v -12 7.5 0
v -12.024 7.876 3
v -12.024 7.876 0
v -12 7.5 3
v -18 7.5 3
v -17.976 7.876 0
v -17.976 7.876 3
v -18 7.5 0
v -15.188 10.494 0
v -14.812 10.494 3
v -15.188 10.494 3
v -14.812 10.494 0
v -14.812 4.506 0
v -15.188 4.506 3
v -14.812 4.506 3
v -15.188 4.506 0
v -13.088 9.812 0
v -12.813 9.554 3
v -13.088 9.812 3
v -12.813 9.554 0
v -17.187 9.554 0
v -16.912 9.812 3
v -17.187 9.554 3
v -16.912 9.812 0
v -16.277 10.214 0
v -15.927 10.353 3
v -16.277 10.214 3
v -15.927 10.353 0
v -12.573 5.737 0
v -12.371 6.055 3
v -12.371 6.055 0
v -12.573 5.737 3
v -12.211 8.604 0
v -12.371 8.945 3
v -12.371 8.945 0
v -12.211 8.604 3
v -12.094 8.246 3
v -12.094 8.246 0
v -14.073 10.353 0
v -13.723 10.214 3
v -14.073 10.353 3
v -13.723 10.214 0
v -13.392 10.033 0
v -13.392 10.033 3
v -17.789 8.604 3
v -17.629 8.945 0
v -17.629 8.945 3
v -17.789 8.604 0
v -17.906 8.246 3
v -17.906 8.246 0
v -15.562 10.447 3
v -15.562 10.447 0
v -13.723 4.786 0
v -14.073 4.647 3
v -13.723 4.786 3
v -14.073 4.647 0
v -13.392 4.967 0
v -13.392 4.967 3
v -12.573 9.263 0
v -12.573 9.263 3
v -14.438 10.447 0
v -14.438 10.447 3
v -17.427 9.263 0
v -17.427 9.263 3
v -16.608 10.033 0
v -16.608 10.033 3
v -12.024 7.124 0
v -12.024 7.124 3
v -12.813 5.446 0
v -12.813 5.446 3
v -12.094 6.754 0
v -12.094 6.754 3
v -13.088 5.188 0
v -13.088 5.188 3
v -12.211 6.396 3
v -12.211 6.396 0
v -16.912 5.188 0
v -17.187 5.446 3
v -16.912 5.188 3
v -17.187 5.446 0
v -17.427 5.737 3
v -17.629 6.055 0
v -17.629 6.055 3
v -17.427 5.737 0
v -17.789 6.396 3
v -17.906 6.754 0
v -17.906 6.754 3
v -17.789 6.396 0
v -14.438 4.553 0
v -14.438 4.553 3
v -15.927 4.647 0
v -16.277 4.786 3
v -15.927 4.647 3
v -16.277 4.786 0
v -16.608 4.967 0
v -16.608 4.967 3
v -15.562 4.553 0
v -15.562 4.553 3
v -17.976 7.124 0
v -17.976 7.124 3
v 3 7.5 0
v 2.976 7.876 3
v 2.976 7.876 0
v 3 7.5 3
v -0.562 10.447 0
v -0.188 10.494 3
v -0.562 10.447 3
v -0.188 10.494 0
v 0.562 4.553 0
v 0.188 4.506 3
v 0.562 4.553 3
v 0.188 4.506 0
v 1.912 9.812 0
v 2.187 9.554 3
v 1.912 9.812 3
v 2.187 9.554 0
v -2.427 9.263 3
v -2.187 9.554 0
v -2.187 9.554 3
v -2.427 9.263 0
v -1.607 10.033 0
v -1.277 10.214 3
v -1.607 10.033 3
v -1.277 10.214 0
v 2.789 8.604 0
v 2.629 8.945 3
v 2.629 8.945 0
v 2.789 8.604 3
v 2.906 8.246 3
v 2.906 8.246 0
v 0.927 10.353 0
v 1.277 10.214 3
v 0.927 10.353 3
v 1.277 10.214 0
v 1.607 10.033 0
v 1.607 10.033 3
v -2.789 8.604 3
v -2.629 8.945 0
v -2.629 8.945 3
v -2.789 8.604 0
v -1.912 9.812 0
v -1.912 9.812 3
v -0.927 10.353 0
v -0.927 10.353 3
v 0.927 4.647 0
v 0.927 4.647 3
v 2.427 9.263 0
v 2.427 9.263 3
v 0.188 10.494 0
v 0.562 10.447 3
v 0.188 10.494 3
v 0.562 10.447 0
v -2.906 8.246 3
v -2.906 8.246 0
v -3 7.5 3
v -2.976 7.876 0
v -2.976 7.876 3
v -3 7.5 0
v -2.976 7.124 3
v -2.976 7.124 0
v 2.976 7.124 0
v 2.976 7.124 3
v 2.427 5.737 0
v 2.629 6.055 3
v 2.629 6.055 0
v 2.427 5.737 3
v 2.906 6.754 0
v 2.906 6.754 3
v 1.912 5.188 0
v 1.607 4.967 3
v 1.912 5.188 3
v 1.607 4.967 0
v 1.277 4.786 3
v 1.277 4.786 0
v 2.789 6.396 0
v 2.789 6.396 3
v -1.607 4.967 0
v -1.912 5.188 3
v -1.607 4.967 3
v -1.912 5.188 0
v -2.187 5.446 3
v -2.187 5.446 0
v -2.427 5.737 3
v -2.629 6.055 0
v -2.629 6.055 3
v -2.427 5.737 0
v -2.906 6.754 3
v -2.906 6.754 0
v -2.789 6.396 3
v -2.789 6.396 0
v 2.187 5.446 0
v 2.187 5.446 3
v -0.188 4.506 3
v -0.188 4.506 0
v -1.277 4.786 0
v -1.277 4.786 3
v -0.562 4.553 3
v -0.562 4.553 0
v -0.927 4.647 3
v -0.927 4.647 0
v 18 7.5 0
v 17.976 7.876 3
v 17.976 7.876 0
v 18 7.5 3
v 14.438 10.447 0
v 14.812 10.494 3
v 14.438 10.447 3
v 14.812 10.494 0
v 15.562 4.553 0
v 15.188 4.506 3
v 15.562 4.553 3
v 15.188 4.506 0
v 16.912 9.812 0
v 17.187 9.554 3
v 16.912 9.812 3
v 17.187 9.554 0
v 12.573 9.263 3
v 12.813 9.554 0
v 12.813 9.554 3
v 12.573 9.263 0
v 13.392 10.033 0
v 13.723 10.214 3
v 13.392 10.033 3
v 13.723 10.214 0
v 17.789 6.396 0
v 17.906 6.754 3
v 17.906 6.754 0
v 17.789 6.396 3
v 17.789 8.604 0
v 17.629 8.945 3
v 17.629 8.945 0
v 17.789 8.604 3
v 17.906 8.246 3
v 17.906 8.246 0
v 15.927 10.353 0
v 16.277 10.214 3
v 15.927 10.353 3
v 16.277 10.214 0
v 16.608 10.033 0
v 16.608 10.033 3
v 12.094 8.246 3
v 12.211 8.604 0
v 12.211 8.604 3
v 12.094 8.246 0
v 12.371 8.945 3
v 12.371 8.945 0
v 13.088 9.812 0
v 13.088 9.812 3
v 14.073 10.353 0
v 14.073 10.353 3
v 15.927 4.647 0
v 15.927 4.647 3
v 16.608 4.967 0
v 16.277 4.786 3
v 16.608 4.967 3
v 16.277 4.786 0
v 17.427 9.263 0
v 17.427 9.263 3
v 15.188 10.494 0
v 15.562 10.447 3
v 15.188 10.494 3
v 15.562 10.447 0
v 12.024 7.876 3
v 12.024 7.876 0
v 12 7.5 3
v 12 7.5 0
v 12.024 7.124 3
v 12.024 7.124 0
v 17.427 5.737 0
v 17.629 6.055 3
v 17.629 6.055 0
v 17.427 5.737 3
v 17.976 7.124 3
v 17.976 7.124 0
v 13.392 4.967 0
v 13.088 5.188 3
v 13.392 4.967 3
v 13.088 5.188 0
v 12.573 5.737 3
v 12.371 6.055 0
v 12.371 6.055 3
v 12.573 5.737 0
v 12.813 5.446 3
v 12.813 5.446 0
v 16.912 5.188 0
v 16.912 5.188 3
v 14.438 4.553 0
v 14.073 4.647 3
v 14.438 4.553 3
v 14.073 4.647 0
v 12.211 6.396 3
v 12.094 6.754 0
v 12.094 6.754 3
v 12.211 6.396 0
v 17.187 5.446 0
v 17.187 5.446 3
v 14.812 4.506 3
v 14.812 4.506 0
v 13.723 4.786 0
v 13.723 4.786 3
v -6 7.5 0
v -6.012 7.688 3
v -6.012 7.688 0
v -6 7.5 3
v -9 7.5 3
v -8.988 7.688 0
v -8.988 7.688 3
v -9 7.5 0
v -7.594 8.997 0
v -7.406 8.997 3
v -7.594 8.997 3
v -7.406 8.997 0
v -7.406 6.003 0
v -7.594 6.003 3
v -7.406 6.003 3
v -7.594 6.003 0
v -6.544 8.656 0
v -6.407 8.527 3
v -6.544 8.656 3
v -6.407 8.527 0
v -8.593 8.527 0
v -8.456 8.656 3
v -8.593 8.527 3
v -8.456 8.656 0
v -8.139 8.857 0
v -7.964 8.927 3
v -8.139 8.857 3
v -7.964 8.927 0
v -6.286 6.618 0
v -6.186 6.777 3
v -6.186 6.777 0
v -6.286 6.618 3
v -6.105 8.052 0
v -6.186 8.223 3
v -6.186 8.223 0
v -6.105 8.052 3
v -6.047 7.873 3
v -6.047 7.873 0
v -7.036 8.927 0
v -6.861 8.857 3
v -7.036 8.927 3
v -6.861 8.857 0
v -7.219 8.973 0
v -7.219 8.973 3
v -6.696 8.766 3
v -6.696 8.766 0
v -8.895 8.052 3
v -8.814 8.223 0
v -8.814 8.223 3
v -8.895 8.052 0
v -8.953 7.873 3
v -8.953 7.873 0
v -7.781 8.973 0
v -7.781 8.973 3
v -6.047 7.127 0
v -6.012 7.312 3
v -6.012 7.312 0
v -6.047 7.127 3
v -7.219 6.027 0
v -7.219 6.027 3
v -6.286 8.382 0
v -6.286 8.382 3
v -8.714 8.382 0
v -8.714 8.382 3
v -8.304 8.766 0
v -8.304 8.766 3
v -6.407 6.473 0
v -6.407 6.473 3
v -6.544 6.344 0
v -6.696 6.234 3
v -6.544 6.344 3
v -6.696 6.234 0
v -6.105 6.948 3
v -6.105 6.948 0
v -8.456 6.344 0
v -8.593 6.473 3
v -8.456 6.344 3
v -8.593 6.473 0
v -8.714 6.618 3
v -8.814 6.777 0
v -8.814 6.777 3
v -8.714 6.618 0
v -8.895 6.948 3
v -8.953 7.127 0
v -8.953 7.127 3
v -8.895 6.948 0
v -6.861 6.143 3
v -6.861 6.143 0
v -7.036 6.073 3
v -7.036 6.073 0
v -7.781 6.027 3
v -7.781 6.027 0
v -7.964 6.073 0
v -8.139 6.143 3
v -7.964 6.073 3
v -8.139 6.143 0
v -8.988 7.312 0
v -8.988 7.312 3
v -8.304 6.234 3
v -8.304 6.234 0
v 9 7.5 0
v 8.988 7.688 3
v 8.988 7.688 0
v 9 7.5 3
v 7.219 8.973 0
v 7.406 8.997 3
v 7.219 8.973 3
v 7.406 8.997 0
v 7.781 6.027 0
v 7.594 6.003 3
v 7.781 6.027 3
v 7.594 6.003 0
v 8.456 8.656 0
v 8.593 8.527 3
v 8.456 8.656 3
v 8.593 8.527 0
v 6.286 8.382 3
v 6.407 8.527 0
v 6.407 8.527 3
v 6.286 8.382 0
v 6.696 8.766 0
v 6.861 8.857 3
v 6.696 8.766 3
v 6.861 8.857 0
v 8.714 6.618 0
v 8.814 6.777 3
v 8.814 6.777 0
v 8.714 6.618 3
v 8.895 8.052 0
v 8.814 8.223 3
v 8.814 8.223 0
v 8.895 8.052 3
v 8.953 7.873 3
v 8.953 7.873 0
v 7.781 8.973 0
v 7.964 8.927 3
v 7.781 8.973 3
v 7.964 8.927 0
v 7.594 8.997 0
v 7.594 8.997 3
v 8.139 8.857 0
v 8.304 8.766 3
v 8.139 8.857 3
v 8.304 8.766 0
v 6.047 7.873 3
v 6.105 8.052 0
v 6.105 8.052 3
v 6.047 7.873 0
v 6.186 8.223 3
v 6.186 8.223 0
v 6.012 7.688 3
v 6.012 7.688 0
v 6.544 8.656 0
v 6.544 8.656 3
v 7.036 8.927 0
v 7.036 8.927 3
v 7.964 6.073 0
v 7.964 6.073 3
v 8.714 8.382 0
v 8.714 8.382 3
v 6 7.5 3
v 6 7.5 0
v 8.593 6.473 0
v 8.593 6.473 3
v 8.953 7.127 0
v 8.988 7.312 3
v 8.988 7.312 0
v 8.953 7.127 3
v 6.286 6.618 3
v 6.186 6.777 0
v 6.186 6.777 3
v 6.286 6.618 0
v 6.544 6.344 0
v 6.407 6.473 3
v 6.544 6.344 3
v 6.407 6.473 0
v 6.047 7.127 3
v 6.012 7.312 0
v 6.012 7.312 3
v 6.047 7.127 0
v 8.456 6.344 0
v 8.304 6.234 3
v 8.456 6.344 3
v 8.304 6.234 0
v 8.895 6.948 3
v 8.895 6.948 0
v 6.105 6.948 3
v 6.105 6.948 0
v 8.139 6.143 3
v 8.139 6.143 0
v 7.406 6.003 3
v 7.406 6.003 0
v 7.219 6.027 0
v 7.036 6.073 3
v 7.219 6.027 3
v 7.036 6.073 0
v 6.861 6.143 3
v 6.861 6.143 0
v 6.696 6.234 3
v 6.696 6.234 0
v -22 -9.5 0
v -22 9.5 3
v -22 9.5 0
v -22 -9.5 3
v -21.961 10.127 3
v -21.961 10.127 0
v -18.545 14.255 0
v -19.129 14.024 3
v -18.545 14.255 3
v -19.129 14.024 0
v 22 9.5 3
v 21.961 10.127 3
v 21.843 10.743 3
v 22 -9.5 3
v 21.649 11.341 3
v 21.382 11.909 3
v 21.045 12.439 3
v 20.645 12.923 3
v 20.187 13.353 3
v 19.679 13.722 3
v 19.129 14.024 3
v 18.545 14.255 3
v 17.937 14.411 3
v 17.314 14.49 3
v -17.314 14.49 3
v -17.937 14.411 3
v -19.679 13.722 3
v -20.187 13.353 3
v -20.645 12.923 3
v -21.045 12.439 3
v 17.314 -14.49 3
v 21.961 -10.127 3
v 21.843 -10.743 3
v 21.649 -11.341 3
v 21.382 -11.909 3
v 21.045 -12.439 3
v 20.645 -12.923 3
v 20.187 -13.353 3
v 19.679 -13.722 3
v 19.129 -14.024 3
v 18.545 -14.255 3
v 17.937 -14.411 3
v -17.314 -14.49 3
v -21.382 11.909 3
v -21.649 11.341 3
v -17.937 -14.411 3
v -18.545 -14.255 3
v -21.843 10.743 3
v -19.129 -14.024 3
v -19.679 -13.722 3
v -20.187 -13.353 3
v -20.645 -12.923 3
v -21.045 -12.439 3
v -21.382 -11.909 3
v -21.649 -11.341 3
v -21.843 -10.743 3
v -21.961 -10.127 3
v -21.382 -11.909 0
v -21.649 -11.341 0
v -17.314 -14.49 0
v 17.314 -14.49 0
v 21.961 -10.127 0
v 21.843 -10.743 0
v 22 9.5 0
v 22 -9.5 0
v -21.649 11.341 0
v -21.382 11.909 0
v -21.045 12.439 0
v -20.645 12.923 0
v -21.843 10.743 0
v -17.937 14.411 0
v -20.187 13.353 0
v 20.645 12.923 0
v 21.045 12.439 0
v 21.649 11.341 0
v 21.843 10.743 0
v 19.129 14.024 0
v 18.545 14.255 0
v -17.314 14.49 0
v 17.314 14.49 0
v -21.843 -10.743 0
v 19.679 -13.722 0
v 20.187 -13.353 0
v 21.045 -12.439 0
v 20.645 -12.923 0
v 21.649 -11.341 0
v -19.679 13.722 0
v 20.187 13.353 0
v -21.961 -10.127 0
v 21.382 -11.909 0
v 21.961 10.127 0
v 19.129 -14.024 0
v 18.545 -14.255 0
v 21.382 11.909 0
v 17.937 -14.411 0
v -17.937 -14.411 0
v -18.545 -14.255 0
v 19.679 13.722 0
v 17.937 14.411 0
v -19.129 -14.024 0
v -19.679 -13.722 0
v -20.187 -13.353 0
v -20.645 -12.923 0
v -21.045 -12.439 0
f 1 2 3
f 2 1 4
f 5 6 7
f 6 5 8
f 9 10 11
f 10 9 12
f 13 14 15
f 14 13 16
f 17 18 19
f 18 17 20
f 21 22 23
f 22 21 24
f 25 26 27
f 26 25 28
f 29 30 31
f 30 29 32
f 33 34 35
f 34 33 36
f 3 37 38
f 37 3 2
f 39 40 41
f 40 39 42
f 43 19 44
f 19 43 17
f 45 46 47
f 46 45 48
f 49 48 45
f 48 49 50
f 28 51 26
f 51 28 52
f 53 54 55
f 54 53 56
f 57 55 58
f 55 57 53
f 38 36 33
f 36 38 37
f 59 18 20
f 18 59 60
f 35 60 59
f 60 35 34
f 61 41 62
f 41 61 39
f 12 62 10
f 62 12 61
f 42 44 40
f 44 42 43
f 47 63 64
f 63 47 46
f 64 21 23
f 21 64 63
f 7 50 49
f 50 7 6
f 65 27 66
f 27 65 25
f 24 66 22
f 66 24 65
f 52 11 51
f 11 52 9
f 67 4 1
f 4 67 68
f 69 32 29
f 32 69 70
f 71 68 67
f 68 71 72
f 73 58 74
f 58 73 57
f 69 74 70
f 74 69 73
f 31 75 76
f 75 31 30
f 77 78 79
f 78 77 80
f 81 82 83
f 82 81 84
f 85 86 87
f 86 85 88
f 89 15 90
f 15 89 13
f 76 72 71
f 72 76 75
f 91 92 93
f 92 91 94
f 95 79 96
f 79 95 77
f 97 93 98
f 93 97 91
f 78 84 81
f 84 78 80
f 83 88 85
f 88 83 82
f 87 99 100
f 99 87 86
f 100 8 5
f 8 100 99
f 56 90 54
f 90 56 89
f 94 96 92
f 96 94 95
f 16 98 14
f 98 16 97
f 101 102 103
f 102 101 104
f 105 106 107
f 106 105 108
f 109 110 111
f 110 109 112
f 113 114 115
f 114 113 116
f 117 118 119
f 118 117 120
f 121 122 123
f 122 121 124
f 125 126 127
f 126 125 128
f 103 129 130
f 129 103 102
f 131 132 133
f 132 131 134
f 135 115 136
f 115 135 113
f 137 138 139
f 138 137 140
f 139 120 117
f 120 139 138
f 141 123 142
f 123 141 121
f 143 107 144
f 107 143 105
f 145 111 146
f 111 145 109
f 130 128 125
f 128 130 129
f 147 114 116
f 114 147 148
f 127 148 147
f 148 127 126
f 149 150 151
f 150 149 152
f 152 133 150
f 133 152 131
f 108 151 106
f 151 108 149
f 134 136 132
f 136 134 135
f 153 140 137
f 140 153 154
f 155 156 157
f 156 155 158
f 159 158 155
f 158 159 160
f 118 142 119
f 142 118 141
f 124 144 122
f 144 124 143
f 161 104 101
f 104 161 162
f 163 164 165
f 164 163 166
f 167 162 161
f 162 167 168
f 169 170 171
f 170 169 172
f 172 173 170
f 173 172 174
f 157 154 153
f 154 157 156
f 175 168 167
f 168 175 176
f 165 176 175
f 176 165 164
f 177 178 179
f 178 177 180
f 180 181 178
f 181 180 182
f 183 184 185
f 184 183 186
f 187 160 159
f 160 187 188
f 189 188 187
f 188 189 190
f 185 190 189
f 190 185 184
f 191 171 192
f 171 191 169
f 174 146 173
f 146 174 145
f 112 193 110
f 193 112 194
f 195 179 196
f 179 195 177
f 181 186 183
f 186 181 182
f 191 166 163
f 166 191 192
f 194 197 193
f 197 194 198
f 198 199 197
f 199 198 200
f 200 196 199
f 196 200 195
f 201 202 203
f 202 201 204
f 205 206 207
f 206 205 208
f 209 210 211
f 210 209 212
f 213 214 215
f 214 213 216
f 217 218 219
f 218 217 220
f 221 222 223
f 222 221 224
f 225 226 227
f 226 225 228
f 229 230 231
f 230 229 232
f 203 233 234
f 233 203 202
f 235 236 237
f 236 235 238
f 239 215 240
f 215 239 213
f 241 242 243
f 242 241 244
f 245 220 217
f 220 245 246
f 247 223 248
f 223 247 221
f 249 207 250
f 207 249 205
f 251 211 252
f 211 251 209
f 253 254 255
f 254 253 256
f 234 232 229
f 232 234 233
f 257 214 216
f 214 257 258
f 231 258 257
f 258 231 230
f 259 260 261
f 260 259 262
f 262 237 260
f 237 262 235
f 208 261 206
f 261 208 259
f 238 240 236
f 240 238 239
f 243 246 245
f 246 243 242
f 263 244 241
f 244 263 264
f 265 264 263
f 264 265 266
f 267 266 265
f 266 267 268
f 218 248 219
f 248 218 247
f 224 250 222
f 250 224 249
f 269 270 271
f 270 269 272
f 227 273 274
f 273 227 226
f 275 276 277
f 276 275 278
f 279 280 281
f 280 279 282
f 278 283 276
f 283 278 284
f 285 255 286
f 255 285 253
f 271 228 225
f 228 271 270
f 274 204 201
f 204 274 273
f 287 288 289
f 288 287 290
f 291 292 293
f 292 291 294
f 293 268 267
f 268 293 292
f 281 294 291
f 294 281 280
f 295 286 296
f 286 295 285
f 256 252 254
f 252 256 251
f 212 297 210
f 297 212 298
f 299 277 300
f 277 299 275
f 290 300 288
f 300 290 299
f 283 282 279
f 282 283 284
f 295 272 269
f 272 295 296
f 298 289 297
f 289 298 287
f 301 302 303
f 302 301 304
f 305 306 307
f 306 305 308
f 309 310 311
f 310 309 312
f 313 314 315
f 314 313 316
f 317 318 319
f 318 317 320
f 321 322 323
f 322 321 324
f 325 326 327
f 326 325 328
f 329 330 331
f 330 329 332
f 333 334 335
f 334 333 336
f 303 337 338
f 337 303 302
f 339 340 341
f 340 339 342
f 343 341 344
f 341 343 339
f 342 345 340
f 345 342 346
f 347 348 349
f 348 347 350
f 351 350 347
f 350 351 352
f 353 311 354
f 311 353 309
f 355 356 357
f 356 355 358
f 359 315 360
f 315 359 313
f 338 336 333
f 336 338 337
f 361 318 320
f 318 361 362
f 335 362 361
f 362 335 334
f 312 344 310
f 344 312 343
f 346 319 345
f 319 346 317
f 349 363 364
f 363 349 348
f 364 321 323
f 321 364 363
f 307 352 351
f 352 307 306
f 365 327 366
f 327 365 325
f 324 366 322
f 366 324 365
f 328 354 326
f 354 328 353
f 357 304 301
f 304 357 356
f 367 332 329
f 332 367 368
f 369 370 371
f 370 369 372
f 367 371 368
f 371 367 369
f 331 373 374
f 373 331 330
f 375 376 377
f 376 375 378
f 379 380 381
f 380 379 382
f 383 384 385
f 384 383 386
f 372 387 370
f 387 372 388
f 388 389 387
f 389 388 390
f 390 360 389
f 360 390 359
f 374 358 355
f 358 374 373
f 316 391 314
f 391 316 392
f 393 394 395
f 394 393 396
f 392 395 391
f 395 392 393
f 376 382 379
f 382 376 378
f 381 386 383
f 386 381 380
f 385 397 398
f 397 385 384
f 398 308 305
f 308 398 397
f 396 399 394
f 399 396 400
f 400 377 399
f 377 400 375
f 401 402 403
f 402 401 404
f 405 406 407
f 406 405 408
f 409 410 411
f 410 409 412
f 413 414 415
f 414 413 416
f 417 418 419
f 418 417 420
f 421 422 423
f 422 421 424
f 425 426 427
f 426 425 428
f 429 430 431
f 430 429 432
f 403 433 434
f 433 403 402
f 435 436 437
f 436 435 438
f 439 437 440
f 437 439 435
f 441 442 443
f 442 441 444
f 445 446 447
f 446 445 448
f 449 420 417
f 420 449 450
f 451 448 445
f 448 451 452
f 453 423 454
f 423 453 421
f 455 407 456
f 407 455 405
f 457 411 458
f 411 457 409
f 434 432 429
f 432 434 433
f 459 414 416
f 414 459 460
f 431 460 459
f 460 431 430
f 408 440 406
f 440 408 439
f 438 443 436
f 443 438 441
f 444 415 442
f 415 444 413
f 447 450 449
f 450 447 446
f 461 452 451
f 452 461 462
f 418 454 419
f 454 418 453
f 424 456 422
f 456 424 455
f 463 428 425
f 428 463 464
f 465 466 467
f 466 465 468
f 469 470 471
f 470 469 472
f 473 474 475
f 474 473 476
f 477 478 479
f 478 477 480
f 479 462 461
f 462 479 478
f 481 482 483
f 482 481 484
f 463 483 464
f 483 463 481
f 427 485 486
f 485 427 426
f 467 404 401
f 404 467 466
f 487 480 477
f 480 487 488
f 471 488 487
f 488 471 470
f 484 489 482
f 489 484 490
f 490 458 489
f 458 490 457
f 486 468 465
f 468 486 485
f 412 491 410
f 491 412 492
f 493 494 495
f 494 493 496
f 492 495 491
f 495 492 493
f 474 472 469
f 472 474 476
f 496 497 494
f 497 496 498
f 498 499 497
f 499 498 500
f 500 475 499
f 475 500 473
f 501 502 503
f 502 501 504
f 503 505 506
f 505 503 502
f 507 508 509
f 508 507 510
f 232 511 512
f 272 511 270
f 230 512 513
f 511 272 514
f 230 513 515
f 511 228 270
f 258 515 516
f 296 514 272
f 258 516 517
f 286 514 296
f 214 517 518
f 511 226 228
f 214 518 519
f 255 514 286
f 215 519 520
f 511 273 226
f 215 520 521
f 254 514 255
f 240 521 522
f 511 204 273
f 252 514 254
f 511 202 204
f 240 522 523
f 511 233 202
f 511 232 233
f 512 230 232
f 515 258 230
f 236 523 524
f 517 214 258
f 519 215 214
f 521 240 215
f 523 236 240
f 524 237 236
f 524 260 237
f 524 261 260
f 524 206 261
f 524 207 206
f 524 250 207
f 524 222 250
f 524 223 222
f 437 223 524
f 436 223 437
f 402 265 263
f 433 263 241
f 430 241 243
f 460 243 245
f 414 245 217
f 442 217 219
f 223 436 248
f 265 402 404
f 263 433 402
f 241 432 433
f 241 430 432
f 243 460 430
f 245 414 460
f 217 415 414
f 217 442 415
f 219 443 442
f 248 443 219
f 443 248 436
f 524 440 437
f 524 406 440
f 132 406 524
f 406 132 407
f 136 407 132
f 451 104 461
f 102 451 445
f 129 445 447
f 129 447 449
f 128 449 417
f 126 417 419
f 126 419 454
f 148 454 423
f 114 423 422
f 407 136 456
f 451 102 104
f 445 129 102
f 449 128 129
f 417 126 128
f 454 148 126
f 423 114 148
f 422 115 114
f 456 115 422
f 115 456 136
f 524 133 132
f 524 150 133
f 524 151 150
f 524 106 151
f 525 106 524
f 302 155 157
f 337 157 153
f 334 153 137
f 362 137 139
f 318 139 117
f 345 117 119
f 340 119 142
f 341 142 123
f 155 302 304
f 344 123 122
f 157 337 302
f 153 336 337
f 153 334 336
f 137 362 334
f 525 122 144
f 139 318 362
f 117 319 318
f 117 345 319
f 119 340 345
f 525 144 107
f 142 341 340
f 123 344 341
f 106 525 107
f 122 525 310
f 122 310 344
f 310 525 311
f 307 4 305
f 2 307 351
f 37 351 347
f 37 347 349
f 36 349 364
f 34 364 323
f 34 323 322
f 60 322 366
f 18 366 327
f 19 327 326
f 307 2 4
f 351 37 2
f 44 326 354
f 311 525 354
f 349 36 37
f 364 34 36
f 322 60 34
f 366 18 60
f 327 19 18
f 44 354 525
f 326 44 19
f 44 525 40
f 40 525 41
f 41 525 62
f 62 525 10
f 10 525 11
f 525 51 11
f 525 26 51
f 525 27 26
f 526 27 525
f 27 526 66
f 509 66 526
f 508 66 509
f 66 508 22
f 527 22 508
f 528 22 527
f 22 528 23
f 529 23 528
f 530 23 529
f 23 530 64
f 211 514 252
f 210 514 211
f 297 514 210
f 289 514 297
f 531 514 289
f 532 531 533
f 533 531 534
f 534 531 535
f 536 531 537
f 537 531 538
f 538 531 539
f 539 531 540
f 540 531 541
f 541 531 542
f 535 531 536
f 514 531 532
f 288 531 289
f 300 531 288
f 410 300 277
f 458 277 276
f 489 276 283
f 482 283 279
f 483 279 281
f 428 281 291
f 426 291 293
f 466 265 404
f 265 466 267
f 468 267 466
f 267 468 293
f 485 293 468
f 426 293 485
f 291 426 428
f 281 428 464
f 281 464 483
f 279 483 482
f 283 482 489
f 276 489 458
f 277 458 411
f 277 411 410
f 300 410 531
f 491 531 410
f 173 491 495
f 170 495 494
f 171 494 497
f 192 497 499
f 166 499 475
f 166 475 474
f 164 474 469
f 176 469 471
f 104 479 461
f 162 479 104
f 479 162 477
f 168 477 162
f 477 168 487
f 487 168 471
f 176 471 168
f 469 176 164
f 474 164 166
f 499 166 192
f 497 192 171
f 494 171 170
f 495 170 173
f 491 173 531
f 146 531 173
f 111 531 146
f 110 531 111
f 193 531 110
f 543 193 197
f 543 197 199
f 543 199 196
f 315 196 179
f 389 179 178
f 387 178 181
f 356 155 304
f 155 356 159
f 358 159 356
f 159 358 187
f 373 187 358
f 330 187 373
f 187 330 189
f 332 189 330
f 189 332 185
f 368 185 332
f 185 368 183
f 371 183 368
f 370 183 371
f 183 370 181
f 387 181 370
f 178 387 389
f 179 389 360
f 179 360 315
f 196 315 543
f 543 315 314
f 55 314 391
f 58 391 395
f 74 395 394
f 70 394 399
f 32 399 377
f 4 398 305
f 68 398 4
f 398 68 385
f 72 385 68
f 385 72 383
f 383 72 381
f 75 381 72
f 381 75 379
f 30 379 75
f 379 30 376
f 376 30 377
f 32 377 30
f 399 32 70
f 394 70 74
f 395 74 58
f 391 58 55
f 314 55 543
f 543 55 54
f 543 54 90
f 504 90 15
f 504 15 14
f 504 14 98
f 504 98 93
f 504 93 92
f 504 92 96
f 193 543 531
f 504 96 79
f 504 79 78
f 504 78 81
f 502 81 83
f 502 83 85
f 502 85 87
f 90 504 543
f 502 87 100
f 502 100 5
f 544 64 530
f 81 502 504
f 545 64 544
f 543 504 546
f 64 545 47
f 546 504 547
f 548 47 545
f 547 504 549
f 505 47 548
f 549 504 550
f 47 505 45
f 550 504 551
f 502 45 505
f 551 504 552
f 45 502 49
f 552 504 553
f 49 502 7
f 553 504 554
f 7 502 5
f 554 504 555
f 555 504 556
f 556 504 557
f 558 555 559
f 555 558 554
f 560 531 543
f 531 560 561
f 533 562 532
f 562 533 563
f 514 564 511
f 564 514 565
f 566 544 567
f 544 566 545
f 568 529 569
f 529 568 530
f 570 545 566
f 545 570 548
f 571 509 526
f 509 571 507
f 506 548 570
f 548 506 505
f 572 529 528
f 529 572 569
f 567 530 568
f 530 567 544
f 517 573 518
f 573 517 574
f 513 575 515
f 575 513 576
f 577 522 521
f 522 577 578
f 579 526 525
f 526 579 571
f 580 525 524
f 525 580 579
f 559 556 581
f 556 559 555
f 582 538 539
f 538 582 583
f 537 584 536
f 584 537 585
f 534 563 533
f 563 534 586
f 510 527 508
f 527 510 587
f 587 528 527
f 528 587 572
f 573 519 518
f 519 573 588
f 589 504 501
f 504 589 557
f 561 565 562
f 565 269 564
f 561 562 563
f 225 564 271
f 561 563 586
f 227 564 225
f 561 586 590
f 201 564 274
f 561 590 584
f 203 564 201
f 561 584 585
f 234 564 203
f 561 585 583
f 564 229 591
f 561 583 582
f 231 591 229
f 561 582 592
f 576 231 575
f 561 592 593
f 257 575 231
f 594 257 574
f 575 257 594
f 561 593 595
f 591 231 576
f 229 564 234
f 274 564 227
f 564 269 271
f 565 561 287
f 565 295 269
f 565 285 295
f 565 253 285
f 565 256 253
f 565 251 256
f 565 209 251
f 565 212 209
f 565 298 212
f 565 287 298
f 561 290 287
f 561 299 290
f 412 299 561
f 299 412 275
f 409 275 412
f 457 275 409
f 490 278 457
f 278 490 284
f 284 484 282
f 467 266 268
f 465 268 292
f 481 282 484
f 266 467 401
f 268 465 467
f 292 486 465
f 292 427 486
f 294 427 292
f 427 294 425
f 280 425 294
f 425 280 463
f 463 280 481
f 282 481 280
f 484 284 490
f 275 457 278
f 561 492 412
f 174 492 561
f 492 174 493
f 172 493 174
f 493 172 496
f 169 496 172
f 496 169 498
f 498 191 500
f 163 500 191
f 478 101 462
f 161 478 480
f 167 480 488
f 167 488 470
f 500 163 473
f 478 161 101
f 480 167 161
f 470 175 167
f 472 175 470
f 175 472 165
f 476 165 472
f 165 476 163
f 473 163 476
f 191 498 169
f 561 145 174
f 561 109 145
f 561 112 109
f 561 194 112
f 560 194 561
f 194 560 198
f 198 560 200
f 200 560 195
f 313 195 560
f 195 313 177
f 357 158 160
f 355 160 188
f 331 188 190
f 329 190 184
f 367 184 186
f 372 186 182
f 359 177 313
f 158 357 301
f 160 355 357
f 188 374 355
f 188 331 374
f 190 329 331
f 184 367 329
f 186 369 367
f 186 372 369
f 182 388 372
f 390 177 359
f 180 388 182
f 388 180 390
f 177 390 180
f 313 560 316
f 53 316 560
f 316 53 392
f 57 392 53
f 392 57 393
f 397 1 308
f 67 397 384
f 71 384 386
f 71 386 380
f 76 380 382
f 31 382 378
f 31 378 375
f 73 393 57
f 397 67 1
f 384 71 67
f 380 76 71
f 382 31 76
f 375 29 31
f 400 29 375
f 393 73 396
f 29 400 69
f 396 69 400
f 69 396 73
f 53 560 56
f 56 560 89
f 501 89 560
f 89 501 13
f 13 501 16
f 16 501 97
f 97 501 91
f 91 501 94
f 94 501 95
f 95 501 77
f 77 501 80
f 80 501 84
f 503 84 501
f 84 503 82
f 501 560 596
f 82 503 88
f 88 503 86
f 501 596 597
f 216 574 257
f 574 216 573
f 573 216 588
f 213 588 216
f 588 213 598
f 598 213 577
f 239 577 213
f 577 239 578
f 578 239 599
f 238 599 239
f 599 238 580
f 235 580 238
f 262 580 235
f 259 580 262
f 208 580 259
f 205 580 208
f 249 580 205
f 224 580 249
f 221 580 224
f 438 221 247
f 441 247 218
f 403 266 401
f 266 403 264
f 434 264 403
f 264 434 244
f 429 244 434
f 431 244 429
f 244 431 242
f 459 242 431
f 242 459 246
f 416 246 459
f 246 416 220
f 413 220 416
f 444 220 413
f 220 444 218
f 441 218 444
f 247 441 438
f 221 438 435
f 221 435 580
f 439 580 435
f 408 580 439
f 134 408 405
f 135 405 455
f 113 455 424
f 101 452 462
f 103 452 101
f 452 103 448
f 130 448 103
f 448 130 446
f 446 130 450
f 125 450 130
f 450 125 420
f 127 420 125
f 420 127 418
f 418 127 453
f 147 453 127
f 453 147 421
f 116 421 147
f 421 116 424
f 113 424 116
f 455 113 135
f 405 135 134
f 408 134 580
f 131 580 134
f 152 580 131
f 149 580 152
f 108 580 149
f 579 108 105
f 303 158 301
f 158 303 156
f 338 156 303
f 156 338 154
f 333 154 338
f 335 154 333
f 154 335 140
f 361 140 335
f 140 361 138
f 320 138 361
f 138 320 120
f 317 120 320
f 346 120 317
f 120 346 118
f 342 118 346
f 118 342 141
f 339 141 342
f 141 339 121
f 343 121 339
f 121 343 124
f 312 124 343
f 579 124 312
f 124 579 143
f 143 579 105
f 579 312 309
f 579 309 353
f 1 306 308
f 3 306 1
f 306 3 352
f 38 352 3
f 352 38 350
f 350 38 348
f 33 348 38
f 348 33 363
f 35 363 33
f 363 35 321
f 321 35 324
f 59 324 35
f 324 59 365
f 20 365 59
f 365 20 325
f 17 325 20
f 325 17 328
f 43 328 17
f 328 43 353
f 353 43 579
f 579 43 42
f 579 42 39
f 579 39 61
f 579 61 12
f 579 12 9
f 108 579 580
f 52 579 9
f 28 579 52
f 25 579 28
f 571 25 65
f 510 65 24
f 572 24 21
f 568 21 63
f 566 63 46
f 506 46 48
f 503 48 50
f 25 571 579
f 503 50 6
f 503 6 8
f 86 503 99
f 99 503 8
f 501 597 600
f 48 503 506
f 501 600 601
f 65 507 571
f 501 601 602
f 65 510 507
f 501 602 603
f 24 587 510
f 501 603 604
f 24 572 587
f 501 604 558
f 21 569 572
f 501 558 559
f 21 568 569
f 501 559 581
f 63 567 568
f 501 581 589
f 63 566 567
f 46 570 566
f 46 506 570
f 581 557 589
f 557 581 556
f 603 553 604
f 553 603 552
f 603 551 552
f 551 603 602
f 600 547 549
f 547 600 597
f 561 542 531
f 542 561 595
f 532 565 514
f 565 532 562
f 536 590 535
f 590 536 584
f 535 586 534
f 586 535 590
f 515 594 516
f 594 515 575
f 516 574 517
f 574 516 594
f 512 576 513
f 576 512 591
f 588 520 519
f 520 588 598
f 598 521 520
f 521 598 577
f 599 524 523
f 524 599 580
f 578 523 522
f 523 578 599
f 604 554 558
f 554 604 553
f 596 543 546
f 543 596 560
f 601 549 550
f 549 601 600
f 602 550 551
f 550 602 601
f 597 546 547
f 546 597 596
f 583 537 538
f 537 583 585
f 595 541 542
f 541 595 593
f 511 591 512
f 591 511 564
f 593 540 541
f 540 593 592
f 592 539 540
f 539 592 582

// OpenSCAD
$fn = 50;


difference() {
	union() {
		*color(alpha = 1.0000000000, c = "gray") {
			translate(v = [0, 7, 0]) {
				linear_extrude(height = 1) {
					text(font = "Arial:style=Bold", halign = "center", size = 4.5000000000, text = "COMMENT plate main", valign = "center");
				}
			}
		}
		hull() {
			translate(v = [-17.0000000000, 9.5000000000, 0]) {
				cylinder(h = 3, r = 5);
			}
			translate(v = [17.0000000000, 9.5000000000, 0]) {
				cylinder(h = 3, r = 5);
			}
			translate(v = [-17.0000000000, -9.5000000000, 0]) {
				cylinder(h = 3, r = 5);
			}
			translate(v = [17.0000000000, -9.5000000000, 0]) {
				cylinder(h = 3, r = 5);
			}
		}
	}
	union() {
		*color(alpha = 1.0000000000, c = "gray") {
			translate(v = [0, 7, 0]) {
				linear_extrude(height = 1) {
					text(font = "Arial:style=Bold", halign = "center", size = 4.5000000000, text = "COMMENT holes main", valign = "center");
				}
			}
		}
		translate(v = [-15.0000000000, 7.5000000000, -100.0000000000]) {
			cylinder(h = 200, r = 3.0000000000);
		}
		translate(v = [0.0000000000, 7.5000000000, -100.0000000000]) {
			cylinder(h = 200, r = 3.0000000000);
		}
		translate(v = [15.0000000000, 7.5000000000, -100.0000000000]) {
			cylinder(h = 200, r = 3.0000000000);
		}
		translate(v = [-15.0000000000, 7.5000000000, -100.0000000000]) {
			cylinder(h = 200, r = 1.5000000000);
		}
		translate(v = [-7.5000000000, 7.5000000000, -100.0000000000]) {
			cylinder(h = 200, r = 1.5000000000);
		}
		translate(v = [0.0000000000, 7.5000000000, -100.0000000000]) {
			cylinder(h = 200, r = 1.5000000000);
		}
		translate(v = [7.5000000000, 7.5000000000, -100.0000000000]) {
			cylinder(h = 200, r = 1.5000000000);
		}
		translate(v = [15.0000000000, 7.5000000000, -100.0000000000]) {
			cylinder(h = 200, r = 1.5000000000);
		}
		translate(v = [-15.0000000000, 7.5000000000, -100.0000000000]) {
			cylinder(h = 200, r = 1.5000000000);
		}
		translate(v = [-7.5000000000, 7.5000000000, -100.0000000000]) {
			cylinder(h = 200, r = 1.5000000000);
		}
		translate(v = [0.0000000000, 7.5000000000, -100.0000000000]) {
			cylinder(h = 200, r = 1.5000000000);
		}
		translate(v = [7.5000000000, 7.5000000000, -100.0000000000]) {
			cylinder(h = 200, r = 1.5000000000);
		}
		translate(v = [15.0000000000, 7.5000000000, -100.0000000000]) {
			cylinder(h = 200, r = 1.5000000000);
		}
		translate(v = [-15.0000000000, 7.5000000000, -100.0000000000]) {
			cylinder(h = 200, r = 1.5000000000);
		}
		translate(v = [-7.5000000000, 7.5000000000, -100.0000000000]) {
			cylinder(h = 200, r = 1.5000000000);
		}
		translate(v = [0.0000000000, 7.5000000000, -100.0000000000]) {
			cylinder(h = 200, r = 1.5000000000);
		}
		translate(v = [7.5000000000, 7.5000000000, -100.0000000000]) {
			cylinder(h = 200, r = 1.5000000000);
		}
		translate(v = [15.0000000000, 7.5000000000, -100.0000000000]) {
			cylinder(h = 200, r = 1.5000000000);
		}
	}
}
